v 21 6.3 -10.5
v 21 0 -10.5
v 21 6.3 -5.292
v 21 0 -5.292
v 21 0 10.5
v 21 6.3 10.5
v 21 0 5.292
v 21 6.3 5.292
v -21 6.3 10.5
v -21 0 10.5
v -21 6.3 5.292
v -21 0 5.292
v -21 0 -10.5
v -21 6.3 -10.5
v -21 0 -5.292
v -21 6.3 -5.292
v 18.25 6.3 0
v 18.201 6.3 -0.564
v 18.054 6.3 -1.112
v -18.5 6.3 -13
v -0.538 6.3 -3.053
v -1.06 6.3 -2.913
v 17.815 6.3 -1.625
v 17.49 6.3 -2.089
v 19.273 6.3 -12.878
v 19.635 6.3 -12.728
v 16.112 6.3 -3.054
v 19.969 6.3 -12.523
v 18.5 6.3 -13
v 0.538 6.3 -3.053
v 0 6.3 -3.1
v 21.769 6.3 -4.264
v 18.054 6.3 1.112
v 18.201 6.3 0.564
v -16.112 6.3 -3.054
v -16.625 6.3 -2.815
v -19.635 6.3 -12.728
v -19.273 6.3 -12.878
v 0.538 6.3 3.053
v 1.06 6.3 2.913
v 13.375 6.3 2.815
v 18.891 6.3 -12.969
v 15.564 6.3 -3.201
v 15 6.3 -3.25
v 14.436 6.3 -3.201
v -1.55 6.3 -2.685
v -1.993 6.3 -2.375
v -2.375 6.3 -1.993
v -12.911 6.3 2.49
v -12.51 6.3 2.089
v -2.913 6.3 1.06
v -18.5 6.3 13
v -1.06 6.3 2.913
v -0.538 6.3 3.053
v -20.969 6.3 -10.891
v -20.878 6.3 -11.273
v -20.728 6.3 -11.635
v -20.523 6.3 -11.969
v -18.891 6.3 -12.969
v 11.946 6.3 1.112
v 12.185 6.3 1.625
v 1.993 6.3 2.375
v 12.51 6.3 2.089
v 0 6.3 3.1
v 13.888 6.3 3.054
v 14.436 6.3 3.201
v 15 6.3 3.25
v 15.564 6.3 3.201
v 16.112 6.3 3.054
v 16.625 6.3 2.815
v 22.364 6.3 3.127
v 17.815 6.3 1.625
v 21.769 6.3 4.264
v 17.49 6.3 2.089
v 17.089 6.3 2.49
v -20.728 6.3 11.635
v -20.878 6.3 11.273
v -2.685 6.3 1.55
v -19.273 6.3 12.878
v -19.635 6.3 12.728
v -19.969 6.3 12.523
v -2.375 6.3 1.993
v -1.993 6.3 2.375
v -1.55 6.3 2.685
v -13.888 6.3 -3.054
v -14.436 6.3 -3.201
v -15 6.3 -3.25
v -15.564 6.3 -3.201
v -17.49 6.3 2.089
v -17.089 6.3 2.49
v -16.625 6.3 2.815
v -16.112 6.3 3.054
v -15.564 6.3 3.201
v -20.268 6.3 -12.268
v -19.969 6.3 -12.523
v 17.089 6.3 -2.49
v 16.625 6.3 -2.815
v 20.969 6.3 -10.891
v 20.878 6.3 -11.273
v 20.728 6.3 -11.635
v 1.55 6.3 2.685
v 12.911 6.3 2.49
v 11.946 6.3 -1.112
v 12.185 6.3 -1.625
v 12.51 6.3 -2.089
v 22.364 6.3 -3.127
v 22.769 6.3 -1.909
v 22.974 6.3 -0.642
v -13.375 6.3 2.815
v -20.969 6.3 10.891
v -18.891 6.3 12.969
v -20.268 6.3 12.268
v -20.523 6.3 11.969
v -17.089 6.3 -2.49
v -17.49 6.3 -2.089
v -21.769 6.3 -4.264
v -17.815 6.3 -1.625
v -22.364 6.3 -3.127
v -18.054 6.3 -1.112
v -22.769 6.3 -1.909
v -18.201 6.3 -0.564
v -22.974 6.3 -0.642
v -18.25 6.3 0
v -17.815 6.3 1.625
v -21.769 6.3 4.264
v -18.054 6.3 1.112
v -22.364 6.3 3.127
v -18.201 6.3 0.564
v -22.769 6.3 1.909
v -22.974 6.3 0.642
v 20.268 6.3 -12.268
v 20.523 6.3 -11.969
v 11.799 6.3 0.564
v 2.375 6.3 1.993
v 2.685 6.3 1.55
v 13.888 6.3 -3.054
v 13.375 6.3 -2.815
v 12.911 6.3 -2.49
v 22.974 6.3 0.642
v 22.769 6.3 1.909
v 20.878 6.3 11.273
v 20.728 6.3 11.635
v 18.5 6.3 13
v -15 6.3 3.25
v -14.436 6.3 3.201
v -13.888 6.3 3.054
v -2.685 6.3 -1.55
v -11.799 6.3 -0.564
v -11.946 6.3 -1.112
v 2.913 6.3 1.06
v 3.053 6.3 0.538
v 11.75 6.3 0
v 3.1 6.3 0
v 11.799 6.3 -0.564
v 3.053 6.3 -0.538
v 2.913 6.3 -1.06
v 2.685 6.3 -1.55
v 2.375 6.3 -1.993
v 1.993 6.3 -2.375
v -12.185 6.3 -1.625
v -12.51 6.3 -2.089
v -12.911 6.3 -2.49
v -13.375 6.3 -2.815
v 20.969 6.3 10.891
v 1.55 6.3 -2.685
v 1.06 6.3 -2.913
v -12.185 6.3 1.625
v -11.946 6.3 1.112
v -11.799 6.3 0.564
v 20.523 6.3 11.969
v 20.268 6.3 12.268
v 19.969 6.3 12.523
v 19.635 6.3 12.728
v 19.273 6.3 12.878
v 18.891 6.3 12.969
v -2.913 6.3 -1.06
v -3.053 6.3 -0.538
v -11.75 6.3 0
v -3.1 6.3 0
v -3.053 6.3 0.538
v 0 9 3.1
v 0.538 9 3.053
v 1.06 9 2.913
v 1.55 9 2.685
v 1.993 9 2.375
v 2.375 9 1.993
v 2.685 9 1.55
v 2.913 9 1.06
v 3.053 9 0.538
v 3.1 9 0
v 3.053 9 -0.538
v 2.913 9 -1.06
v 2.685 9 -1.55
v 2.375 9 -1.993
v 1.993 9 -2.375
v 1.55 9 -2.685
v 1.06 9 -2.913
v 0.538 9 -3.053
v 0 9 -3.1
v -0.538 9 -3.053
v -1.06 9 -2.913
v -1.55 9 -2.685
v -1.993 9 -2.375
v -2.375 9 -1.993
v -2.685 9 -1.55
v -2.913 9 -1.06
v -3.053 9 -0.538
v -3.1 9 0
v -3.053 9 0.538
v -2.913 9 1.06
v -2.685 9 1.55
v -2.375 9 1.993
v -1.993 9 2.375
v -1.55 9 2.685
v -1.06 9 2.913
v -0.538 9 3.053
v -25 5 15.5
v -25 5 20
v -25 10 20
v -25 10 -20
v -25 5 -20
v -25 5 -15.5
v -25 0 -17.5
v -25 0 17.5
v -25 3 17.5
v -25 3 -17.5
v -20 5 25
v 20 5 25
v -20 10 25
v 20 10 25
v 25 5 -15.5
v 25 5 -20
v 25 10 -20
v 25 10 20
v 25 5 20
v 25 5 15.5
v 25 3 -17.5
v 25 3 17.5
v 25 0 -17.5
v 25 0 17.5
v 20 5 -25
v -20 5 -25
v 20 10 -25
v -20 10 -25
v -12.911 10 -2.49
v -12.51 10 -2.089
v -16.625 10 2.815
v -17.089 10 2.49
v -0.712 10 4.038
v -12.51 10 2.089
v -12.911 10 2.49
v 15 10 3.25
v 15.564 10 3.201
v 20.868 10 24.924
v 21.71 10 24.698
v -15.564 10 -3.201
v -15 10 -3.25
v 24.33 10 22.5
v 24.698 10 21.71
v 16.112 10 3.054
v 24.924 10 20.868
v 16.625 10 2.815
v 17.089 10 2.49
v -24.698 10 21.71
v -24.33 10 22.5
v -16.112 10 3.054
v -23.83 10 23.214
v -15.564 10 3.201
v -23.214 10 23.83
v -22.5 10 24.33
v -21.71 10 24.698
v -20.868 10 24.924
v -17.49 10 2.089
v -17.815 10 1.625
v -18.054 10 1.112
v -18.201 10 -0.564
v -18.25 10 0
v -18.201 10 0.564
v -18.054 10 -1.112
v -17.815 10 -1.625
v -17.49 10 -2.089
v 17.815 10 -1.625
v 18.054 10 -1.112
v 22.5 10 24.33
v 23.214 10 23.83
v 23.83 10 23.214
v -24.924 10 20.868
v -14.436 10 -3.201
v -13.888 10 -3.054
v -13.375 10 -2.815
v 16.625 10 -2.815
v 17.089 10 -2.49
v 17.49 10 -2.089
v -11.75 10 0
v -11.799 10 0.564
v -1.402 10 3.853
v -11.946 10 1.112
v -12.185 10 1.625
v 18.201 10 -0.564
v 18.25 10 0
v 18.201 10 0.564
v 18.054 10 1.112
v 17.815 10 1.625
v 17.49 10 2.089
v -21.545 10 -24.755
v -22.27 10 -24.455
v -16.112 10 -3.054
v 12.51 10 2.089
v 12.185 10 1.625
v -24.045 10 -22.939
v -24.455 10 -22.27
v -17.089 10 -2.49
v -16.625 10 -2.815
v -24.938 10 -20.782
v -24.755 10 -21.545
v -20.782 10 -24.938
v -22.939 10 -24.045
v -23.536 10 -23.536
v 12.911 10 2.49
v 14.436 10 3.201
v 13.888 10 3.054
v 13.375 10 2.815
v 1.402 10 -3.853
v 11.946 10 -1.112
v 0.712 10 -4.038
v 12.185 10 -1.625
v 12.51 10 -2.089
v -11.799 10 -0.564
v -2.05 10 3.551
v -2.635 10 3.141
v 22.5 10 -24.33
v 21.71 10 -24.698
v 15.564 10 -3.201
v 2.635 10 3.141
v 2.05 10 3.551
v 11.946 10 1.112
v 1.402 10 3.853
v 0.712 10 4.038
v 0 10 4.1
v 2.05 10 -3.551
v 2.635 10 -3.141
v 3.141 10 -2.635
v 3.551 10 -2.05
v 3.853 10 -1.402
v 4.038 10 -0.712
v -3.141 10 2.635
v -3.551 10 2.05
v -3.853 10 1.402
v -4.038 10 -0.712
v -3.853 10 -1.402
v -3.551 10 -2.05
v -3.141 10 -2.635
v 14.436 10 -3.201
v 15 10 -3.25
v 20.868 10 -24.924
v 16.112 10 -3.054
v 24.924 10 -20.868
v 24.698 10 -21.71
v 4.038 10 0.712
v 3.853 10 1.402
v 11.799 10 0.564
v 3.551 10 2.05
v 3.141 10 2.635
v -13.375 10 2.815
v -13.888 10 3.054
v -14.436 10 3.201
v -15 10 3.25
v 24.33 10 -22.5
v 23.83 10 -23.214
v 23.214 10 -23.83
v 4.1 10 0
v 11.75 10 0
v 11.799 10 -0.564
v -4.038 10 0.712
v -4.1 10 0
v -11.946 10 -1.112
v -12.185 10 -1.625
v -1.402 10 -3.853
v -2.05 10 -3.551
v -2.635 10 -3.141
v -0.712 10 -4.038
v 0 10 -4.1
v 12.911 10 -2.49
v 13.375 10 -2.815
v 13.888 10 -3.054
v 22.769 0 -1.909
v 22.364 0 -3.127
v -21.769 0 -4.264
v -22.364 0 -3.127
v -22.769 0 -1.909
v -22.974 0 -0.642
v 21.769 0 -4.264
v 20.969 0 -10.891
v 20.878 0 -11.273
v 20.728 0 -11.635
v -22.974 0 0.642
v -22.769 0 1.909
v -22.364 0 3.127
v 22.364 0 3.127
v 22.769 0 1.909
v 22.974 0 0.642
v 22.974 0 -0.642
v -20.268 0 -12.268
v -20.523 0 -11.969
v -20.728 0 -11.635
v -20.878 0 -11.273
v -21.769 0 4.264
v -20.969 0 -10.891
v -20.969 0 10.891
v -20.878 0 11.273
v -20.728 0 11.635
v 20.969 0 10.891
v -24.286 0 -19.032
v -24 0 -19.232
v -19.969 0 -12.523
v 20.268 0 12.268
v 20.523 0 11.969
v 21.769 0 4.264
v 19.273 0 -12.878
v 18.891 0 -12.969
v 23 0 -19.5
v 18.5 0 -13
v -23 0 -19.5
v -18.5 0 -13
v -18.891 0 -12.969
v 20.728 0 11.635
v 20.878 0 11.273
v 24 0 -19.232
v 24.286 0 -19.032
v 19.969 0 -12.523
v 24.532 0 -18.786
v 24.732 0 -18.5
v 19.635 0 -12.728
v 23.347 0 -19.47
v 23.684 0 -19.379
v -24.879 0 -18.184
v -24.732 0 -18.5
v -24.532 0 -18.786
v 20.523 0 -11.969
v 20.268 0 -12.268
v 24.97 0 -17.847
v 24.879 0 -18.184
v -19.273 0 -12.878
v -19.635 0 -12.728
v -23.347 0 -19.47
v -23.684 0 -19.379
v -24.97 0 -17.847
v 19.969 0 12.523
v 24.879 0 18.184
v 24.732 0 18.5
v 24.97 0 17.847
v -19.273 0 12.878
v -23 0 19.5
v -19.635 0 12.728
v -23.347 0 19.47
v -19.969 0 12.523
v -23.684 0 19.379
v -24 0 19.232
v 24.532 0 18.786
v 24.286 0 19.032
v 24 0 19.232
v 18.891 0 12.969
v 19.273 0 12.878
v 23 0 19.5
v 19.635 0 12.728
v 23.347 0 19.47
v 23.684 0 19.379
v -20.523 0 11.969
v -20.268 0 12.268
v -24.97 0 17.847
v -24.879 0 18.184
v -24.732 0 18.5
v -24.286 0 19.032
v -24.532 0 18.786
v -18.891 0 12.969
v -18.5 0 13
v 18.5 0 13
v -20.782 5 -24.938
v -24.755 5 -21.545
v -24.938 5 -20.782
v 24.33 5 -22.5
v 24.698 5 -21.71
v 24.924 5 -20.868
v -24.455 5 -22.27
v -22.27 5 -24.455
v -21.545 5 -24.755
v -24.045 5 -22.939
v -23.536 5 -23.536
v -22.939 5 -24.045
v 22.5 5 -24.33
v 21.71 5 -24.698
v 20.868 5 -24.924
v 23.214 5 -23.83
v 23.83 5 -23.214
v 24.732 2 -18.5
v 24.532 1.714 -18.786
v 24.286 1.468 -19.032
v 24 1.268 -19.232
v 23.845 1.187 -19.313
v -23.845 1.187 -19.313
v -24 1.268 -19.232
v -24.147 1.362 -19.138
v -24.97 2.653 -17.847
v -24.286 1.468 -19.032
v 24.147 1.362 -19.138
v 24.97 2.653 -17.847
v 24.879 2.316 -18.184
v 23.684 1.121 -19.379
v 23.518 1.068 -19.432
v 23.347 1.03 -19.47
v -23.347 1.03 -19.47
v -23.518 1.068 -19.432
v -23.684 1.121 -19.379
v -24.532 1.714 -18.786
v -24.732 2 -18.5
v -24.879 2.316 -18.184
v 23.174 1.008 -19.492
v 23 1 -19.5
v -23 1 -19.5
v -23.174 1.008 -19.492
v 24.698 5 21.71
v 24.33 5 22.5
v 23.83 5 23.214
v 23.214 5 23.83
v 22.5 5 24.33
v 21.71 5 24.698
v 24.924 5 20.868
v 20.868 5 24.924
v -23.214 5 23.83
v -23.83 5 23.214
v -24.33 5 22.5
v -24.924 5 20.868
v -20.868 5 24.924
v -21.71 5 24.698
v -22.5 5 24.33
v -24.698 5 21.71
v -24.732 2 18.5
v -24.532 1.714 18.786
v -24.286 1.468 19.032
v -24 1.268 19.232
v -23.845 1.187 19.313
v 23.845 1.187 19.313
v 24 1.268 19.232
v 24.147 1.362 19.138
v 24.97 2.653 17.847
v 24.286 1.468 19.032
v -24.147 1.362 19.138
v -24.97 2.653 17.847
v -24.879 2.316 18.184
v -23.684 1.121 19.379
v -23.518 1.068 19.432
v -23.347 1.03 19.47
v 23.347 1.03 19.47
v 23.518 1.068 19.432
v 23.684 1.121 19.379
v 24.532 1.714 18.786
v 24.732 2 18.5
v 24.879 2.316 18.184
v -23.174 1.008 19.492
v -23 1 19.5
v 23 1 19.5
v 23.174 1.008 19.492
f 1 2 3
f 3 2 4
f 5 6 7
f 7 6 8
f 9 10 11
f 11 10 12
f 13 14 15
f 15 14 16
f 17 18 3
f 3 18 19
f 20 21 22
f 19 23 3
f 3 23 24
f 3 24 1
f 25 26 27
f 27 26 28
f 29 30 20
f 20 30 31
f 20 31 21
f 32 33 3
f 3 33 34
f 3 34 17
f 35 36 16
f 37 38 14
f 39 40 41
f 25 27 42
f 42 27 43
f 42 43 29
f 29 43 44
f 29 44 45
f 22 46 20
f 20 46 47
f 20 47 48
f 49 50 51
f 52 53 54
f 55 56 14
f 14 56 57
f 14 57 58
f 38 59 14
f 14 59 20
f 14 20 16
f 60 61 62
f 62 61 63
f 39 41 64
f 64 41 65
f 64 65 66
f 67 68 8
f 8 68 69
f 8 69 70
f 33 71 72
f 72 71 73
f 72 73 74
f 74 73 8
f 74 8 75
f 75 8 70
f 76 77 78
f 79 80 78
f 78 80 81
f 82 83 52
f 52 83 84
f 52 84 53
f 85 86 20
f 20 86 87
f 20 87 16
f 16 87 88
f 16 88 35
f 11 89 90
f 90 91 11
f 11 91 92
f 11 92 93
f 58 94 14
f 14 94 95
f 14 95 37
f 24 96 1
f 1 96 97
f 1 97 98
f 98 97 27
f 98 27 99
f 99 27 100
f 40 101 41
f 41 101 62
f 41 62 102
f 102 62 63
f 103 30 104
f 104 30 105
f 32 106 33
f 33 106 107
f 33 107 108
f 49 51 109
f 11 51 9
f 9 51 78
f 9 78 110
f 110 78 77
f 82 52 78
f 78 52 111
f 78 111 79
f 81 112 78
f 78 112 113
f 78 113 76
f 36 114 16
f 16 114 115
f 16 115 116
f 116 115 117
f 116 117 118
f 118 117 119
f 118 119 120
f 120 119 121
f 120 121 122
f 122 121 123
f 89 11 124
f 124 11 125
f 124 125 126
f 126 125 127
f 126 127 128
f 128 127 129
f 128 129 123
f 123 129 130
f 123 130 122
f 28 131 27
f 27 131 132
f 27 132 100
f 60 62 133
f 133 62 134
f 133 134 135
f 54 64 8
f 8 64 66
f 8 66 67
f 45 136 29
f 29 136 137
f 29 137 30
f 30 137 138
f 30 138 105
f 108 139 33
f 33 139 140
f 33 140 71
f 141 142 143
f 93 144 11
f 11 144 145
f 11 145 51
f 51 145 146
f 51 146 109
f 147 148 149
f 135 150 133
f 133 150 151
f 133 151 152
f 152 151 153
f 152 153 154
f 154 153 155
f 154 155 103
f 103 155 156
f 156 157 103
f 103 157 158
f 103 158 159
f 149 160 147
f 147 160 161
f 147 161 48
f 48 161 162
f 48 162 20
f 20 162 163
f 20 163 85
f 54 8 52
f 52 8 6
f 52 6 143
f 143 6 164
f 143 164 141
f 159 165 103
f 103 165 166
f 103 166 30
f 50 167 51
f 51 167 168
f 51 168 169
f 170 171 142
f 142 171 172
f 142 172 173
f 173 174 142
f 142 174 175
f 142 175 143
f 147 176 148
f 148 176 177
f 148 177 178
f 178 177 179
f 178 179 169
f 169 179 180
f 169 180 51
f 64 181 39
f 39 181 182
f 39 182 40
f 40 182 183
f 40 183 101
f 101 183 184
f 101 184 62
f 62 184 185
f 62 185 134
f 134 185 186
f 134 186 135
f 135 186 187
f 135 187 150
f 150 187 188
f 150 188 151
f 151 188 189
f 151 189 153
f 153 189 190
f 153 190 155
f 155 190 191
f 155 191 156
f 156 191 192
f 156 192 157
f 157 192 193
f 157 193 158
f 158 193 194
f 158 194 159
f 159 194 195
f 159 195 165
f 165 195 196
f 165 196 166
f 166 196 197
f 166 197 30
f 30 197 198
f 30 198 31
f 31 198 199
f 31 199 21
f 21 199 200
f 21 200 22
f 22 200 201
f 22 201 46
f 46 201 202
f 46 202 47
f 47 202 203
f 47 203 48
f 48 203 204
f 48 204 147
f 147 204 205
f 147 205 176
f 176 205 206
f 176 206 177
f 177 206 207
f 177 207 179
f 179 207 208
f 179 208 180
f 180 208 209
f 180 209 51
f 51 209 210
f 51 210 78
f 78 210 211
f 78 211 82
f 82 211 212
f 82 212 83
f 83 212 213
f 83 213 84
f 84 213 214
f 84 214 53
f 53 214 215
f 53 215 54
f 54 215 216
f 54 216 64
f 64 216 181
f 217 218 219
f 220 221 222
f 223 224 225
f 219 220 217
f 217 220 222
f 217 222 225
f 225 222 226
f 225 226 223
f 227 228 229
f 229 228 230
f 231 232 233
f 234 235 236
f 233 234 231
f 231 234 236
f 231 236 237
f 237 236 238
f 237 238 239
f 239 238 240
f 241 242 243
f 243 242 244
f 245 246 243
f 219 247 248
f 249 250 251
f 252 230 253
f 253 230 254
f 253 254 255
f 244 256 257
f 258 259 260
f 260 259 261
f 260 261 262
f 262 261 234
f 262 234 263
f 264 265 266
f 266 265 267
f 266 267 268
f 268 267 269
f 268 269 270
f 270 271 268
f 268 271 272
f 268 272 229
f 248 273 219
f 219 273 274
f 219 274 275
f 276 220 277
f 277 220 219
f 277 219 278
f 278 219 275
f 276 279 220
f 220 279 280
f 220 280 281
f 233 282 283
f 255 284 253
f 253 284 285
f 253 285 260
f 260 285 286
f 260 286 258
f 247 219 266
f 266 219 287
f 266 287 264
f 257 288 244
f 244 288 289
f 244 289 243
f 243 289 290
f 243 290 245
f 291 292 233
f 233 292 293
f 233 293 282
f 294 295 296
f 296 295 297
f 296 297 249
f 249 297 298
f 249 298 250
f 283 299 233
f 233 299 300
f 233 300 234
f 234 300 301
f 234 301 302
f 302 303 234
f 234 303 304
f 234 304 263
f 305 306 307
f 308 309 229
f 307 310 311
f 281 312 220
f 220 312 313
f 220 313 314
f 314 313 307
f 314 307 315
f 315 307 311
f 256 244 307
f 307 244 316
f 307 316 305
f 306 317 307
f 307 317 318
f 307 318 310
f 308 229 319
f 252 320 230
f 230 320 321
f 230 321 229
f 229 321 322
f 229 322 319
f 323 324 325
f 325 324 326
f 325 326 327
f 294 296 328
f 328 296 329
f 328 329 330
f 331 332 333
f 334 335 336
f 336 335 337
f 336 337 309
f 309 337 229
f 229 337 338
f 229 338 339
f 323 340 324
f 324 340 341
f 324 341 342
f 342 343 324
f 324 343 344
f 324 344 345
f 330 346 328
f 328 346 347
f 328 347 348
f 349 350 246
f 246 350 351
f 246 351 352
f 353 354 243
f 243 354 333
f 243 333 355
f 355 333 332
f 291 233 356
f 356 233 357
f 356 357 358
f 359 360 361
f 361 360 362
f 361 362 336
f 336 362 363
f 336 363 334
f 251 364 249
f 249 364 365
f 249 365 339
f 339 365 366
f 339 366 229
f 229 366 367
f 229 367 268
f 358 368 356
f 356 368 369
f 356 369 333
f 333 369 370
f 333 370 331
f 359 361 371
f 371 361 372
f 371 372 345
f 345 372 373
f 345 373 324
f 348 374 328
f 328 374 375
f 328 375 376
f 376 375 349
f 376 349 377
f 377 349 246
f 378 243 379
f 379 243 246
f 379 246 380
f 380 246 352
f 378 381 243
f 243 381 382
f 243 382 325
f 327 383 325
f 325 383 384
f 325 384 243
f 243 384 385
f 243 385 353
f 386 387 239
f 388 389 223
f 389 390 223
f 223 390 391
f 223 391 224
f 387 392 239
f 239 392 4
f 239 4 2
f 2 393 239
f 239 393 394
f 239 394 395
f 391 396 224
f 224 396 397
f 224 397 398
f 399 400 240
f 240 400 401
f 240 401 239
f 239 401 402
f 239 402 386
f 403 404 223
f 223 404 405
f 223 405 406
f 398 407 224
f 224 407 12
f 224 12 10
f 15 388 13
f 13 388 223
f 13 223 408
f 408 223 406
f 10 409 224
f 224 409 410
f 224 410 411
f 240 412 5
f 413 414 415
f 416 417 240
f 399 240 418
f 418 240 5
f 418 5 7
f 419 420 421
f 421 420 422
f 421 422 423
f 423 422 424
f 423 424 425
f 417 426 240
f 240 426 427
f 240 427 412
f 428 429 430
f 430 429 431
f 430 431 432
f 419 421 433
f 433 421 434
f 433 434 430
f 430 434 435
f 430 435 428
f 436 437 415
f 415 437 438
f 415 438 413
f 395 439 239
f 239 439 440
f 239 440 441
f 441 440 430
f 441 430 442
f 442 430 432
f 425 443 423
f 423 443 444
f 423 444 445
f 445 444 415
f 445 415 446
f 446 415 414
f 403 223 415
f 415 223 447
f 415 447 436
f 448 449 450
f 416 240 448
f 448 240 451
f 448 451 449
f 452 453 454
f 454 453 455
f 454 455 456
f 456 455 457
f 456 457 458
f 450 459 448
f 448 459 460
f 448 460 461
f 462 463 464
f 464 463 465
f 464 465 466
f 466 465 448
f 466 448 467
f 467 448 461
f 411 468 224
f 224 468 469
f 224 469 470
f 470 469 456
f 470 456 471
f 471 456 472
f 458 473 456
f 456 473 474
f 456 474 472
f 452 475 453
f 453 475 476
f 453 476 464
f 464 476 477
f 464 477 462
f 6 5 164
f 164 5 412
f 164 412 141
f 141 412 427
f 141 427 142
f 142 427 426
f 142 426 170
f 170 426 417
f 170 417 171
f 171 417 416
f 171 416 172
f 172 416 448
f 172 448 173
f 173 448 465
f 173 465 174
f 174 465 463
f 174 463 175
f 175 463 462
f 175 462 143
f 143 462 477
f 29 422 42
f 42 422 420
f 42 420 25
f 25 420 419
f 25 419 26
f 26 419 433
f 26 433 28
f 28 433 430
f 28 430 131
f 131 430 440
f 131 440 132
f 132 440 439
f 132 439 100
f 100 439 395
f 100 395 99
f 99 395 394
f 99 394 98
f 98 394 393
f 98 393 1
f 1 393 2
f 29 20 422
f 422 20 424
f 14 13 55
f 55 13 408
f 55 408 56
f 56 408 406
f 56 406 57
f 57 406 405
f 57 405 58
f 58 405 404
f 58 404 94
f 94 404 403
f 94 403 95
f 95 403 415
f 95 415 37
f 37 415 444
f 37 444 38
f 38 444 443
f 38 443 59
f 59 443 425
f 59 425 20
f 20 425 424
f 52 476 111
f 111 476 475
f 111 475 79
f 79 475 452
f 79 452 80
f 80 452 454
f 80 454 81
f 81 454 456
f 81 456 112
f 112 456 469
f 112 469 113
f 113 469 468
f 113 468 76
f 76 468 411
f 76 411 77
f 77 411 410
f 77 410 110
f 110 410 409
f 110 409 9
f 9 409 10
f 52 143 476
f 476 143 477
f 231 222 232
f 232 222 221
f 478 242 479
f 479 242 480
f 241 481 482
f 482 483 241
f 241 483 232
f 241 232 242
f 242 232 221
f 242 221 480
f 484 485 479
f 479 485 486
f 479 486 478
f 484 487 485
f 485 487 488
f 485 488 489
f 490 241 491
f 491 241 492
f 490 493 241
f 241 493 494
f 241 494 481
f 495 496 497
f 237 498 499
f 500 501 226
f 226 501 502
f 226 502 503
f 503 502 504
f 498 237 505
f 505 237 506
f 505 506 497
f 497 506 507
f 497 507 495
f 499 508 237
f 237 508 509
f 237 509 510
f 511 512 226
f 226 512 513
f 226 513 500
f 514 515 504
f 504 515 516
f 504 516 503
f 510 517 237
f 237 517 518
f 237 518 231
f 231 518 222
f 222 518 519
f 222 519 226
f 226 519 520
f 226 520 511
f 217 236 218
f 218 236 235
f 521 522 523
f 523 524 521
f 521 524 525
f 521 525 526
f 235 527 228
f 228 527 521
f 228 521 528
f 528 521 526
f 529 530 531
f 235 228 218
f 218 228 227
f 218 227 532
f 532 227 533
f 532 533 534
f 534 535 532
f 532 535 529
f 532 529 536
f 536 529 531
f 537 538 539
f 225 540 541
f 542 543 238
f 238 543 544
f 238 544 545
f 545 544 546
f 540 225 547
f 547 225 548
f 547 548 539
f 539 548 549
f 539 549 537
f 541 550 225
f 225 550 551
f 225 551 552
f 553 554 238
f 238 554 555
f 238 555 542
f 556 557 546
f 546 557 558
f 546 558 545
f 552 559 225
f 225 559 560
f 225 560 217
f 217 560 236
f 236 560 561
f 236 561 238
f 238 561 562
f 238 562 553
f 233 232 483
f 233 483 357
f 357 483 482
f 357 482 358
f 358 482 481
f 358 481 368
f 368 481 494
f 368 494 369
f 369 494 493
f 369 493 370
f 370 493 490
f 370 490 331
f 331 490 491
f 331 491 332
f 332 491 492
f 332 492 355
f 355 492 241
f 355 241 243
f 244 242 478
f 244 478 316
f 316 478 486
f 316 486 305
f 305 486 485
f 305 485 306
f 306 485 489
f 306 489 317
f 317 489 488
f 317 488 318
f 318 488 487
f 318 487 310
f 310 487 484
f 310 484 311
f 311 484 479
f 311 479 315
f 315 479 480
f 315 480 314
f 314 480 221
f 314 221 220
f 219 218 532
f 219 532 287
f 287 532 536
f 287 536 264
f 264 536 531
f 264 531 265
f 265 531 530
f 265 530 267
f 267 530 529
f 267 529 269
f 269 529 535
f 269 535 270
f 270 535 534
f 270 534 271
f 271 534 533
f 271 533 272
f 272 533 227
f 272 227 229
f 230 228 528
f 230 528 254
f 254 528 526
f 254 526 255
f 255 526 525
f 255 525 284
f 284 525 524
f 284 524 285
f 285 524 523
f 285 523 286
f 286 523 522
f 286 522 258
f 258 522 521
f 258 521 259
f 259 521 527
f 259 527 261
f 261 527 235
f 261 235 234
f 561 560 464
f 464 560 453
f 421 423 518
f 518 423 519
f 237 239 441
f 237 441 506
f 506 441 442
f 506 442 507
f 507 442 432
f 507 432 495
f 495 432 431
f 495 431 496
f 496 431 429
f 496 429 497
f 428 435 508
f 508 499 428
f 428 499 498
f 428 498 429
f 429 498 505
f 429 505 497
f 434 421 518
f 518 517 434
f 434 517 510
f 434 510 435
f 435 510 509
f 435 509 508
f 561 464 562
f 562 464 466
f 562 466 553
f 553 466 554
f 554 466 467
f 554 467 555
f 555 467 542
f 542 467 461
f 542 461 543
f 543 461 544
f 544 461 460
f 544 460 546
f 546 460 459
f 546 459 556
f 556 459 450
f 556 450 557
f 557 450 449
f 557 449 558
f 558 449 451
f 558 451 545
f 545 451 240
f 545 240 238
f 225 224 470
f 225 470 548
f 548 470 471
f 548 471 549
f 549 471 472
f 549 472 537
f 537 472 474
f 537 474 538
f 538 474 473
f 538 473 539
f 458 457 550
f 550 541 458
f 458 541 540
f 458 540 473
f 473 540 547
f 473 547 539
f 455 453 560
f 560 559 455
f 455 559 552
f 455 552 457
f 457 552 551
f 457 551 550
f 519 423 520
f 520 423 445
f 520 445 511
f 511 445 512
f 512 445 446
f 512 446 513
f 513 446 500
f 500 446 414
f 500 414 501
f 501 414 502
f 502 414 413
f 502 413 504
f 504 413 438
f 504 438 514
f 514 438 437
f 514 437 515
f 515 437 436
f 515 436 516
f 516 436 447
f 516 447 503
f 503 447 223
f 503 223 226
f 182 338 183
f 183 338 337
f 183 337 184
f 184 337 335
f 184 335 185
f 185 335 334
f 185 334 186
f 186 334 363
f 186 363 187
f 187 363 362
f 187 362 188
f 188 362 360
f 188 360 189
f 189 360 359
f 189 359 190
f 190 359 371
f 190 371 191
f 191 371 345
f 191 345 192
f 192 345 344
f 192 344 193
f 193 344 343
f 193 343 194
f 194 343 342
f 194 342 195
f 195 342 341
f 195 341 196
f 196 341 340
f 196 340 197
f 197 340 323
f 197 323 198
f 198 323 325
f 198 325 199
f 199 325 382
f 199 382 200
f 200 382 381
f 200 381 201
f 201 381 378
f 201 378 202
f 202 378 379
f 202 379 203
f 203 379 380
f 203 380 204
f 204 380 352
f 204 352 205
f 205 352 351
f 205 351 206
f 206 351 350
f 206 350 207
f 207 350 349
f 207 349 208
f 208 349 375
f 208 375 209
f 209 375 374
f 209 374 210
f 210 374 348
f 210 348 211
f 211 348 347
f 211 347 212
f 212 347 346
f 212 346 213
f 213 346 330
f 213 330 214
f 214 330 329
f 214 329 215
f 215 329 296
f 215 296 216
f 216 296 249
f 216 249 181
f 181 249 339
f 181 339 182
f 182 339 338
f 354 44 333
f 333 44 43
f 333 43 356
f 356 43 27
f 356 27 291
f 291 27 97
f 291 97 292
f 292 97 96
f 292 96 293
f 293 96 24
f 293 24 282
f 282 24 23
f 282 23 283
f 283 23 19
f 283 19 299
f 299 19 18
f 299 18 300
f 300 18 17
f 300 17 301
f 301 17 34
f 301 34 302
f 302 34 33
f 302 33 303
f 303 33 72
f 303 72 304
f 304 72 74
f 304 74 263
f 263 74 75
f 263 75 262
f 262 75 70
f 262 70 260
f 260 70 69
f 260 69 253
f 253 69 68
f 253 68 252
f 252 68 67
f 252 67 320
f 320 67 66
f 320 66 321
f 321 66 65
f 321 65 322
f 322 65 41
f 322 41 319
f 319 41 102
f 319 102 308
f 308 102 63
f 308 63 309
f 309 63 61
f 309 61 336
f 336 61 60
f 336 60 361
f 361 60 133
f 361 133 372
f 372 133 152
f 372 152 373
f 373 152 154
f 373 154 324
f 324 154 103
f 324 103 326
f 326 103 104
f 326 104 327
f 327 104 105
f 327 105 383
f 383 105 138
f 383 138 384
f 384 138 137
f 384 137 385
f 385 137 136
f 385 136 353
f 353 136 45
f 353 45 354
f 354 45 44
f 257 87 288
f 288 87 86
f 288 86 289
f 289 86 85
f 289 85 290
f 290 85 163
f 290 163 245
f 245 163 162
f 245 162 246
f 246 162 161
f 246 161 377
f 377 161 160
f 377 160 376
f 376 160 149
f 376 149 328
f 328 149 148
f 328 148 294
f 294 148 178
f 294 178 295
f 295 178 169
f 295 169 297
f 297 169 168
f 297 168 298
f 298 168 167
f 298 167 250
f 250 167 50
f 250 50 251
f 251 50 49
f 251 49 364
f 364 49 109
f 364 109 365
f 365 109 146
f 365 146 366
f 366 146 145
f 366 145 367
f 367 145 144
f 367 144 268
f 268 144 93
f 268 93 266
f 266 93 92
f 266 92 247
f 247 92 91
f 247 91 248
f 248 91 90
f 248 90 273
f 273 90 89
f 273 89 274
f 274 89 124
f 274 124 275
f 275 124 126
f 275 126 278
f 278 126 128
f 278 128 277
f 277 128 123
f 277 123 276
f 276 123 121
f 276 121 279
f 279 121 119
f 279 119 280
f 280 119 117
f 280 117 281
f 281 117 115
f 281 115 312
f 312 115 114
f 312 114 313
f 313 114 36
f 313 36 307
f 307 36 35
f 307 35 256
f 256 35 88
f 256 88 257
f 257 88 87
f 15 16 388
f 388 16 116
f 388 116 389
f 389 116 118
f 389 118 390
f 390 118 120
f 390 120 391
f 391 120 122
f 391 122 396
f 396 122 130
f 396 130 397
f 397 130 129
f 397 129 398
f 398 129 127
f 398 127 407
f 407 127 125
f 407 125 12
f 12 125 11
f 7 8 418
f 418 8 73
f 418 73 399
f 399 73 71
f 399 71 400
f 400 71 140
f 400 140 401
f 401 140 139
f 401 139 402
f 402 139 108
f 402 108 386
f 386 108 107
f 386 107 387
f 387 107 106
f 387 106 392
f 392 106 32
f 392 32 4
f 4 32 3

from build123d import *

# Parameters (mm, degrees)
SKETCH1_W           = 50
SKETCH1_H           = 50
BOSS_EXTRUDE1_DEPTH = 10
CUT_EXTRUDE3_DEPTH  = 6.3
SKETCH5_R           = 6.5
SKETCH5_R_2         = 3.1
BOSS_EXTRUDE2_DEPTH = 0.5
CUT_EXTRUDE4_DEPTH  = 57.789083458
FILLET2_R           = 5
CHAMFER2_SIZE       = 1
CHAMFER2_SIZE2      = 1.414213562
FILLET3_R           = 2
SKETCH9_R           = 3.1
CUT_EXTRUDE5_DEPTH  = 36.912254176
CHAMFER3_SIZE       = 1
SKETCH10_W          = 52
SKETCH10_H          = 19.709433282
CUT_EXTRUDE6_DEPTH  = 6.3
SKETCH14_R          = 3.25
CUT_EXTRUDE7_DEPTH  = 10
SKETCH15_W          = 4
SKETCH15_H          = 19.709433282
BOSS_EXTRUDE5_DEPTH = 6.3
SKETCH16_R          = 8
CUT_EXTRUDE8_DEPTH  = 10


with BuildPart() as part:
    # Sketch1 → Boss-Extrude1 (new body)
    with BuildSketch(Plane(origin=(0, 0, 0), x_dir=(1, 0, 0), z_dir=(0, 1, 0))):
        Rectangle(SKETCH1_W, SKETCH1_H)
    extrude(amount=BOSS_EXTRUDE1_DEPTH)

    # Sketch4 → Cut-Extrude3 (cut)
    with BuildSketch(Plane(origin=(0, 0, 0), x_dir=(-1, 0, 0), z_dir=(0, -1, 0))):
        with BuildLine():
            Line((21, -7.228416147), (21, -10.5))
            ThreePointArc((21, -10.5), (20.267766953, -12.267766953), (18.5, -13))
            Line((18.5, -13), (-18.5, -13))
            ThreePointArc((-18.5, -13), (-20.267766953, -12.267766953), (-21, -10.5))
            Line((-21, -10.5), (-21, -7.228416147))
            ThreePointArc((-21, -7.228416147), (-20.591644852, -6.017356006), (-19.533333333, -5.300838508))
            ThreePointArc((-19.533333333, -5.300838508), (-15.5, 0), (-19.533333333, 5.300838508))
            ThreePointArc((-19.533333333, 5.300838508), (-20.591644852, 6.017356006), (-21, 7.228416147))
            Line((-21, 7.228416147), (-21, 10.5))
            ThreePointArc((-21, 10.5), (-20.267766953, 12.267766953), (-18.5, 13))
            Line((-18.5, 13), (18.5, 13))
            ThreePointArc((18.5, 13), (20.267766953, 12.267766953), (21, 10.5))
            Line((21, 10.5), (21, 7.228416147))
            ThreePointArc((21, 7.228416147), (20.591644852, 6.017356006), (19.533333333, 5.300838508))
            ThreePointArc((19.533333333, 5.300838508), (15.5, 0), (19.533333333, -5.300838508))
            ThreePointArc((19.533333333, -5.300838508), (20.591644852, -6.017356006), (21, -7.228416147))
        make_face()
    extrude(amount=-CUT_EXTRUDE3_DEPTH, mode=Mode.SUBTRACT)

    # Sketch5 → Boss-Extrude2 (add)
    with BuildSketch(Plane(origin=(0, 6.3, 0), x_dir=(-1, 0, 0), z_dir=(0, -1, 0))):
        with Locations(Location((0, 0, 0), (0, 0, 90))):
            Circle(SKETCH5_R)
        with Locations(Location((0, 0, 0), (0, 0, 90))):
            Circle(SKETCH5_R_2, mode=Mode.SUBTRACT)
    extrude(amount=BOSS_EXTRUDE2_DEPTH)

    # Sketch8 → Cut-Extrude4 (cut, through all)
    with BuildSketch(Plane(origin=(25, 0, 0), x_dir=(0, 0, -1), z_dir=(1, 0, 0))):
        Polygon((-25, 0), (-25, 5), (-15.5, 5), (-20.5, 0), align=None)
        Polygon((25, 0), (25, 5), (15.5, 5), (20.5, 0), align=None)
    extrude(amount=-CUT_EXTRUDE4_DEPTH, mode=Mode.SUBTRACT)

    # Fillet2
    fillet2_edges = [part.edges().sort_by_distance(p)[0] for p in [
        (-25, 7.5, -25),
        (25, 7.5, -25),
        (25, 7.5, 25),
        (-25, 7.5, 25),
    ]]
    fillet(fillet2_edges, radius=FILLET2_R)

    # Chamfer2
    chamfer2_edges = [part.edges().sort_by_distance(p)[0] for p in [
        (0, 0, 20.5),
        (0, 0, -20.5),
    ]]
    chamfer2_side = [part.faces().sort_by_distance(p)[0] for p in [
        (24.353393474, 0, 0),
    ]]
    chamfer(chamfer2_edges, length=CHAMFER2_SIZE, length2=CHAMFER2_SIZE2, reference=chamfer2_side[0])

    # Fillet3
    fillet3_edges = [part.edges().sort_by_distance(p)[0] for p in [
        (25, 0.5, -19.5),
        (25, 0.5, 19.5),
        (-25, 0.5, -19.5),
        (-25, 0.5, 19.5),
    ]]
    fillet(fillet3_edges, radius=FILLET3_R)

    # Sketch9 → Cut-Extrude5 (cut, through all)
    with BuildSketch(Plane(origin=(0, 6.3, 0), x_dir=(-1, 0, 0), z_dir=(0, -1, 0))):
        with Locations(Location((0, 0, 0), (0, 0, 90))):
            Circle(SKETCH9_R)
    extrude(amount=-CUT_EXTRUDE5_DEPTH, mode=Mode.SUBTRACT)

    # Chamfer3
    chamfer3_edges = [part.edges().sort_by_distance(p)[0] for p in [
        (0, 10, 3.1),
    ]]
    chamfer(chamfer3_edges, length=CHAMFER3_SIZE)

    # Sketch10 → Cut-Extrude6 (cut)
    with BuildSketch(Plane.XZ):
        Rectangle(SKETCH10_W, SKETCH10_H)
    extrude(amount=-CUT_EXTRUDE6_DEPTH, mode=Mode.SUBTRACT)

    # Sketch14 → Cut-Extrude7 (cut)
    with BuildSketch(Plane.XZ.offset(-6.3)):
        with Locations(Location((15, 0, 0), (0, 0, 270))):
            Circle(SKETCH14_R)
        with Locations(Location((-15, 0, 0), (0, 0, 270))):
            Circle(SKETCH14_R)
    extrude(amount=-CUT_EXTRUDE7_DEPTH, mode=Mode.SUBTRACT)

    # Sketch15 → Boss-Extrude5 (add)
    with BuildSketch(Plane(origin=(0, 6.3, 0), x_dir=(-1, 0, 0), z_dir=(0, -1, 0))):
        with Locations((-23, 0)):
            Rectangle(SKETCH15_W, SKETCH15_H)
        with Locations((23, 0)):
            Rectangle(SKETCH15_W, SKETCH15_H)
    extrude(amount=BOSS_EXTRUDE5_DEPTH)

    # Sketch16 → Cut-Extrude8 (cut)
    with BuildSketch(Plane(origin=(0, 6.3, 0), x_dir=(-1, 0, 0), z_dir=(0, -1, 0))):
        with Locations((-15, 0)):
            Circle(SKETCH16_R)
        with Locations((15, 0)):
            Circle(SKETCH16_R)
    extrude(amount=CUT_EXTRUDE8_DEPTH, mode=Mode.SUBTRACT)


solid = part.part
